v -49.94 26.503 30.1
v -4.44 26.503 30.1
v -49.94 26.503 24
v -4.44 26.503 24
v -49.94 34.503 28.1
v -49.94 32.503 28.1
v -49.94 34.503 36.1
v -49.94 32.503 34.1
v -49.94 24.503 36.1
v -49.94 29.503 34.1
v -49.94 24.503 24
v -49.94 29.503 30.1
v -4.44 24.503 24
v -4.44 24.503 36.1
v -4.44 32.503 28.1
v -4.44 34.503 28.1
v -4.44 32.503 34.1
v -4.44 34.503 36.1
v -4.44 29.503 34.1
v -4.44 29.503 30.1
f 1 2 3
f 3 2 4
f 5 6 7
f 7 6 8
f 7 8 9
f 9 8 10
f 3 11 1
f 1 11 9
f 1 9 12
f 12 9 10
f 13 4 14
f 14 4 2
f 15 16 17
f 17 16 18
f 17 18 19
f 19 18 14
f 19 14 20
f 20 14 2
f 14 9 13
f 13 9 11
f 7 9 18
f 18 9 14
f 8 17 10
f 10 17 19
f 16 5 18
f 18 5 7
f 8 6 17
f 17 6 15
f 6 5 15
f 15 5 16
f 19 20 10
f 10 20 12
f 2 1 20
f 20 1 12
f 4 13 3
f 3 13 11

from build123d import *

# Parameters (mm, degrees)
SALIENTE_EXTRUIR1_DEPTH = 2
SALIENTE_EXTRUIR2_DEPTH = 24
CROQUIS4_W              = 26.838471133
CROQUIS4_H              = 17.040828642
CORTAR_EXTRUIR1_DEPTH   = 70.1
SALIENTE_EXTRUIR3_DEPTH = 2
SALIENTE_EXTRUIR4_DEPTH = 2
CROQUIS7_W              = 45.5
CROQUIS7_H              = 2
SALIENTE_EXTRUIR5_DEPTH = 8
SALIENTE_EXTRUIR6_DEPTH = 6
CROQUIS9_W              = 76.962380363
CROQUIS9_H              = 58.957858246
CORTAR_EXTRUIR2_DEPTH   = 39


with BuildPart() as part:
    # Croquis1 → Saliente-Extruir1 (new body)
    with BuildSketch(Plane.XY):
        Polygon((-48.939551095, 26.503456625), (-8.439551095, 26.503456625), (-4.439551095, 26.503456625), (-4.439551095, 1.503456625), (-8.439551095, 1.503456625), (-49.939551095, 1.503456625), (-49.939551095, 5.503456625), (-49.939551095, 26.503456625), align=None)
    extrude(amount=SALIENTE_EXTRUIR1_DEPTH)

    # Croquis3 → Saliente-Extruir2 (add)
    with BuildSketch(Plane.XY):
        Polygon((-48.939551095, 26.503456625), (-8.439551095, 26.503456625), (-4.439551095, 26.503456625), (-4.439551095, 1.503456625), (-49.939551095, 1.503456625), (-49.939551095, 26.503456625), align=None)
        Polygon((-10.439551095, 3.503456625), (-47.939551095, 3.503456625), (-47.939551095, 5.503456625), (-47.939551095, 24.503456625), (-10.439551095, 24.503456625), (-6.439551095, 24.503456625), (-6.439551095, 3.503456625), align=None, mode=Mode.SUBTRACT)
    extrude(amount=SALIENTE_EXTRUIR2_DEPTH)

    # Croquis4 → Cortar-Extruir1 (cut)
    with BuildSketch(Plane(origin=(0, 0, 0), x_dir=(0, 0, -1), z_dir=(1, 0, 0))):
        with Locations((-15.419235567, 13.92807924)):
            Rectangle(CROQUIS4_W, CROQUIS4_H)
    extrude(amount=-CORTAR_EXTRUIR1_DEPTH, mode=Mode.SUBTRACT)

    # Croquis5 → Saliente-Extruir3 (add)
    with BuildSketch(Plane(origin=(0, 26.503456625, 0), x_dir=(1, 0, 0), z_dir=(0, 1, 0))):
        Polygon((-49.939551095, -20.607192887), (-4.439551095, -20.607192887), (-4.439551095, -36.1), (-8.439551095, -36.1), (-48.939551095, -36.1), (-49.939551095, -36.1), align=None)
    extrude(amount=-SALIENTE_EXTRUIR3_DEPTH)

    # Croquis6 → Saliente-Extruir4 (add)
    with BuildSketch(Plane.XY.offset(36.1)):
        Polygon((-4.439551095, 24.503456625), (-49.939551095, 24.503456625), (-49.939551095, 33.503456625), (-49.939551095, 34.503456625), (-4.439551095, 34.503456625), (-4.439551095, 33.503456625), align=None)
    extrude(amount=-SALIENTE_EXTRUIR4_DEPTH)

    # Croquis7 → Saliente-Extruir5 (add)
    with BuildSketch(Plane.XY.offset(36.1)):
        with Locations((-27.189551095, 33.503456625)):
            Rectangle(CROQUIS7_W, CROQUIS7_H)
    extrude(amount=-SALIENTE_EXTRUIR5_DEPTH)

    # Croquis8 → Saliente-Extruir6 (add)
    with BuildSketch(Plane.XY.offset(36.1)):
        Polygon((-49.939551095, 29.503456625), (-49.939551095, 26.503456625), (-49.715027183, 26.503456625), (-8.439551095, 26.503456625), (-4.439551095, 26.503456625), (-4.439551095, 29.503456625), (-8.439551095, 29.503456625), (-49.715027183, 29.503456625), align=None)
    extrude(amount=-SALIENTE_EXTRUIR6_DEPTH)

    # Croquis9 → Cortar-Extruir2 (cut)
    with BuildSketch(Plane.XY.offset(24)):
        with Locations((-25.38769132, 23.863692023)):
            Rectangle(CROQUIS9_W, CROQUIS9_H)
    extrude(amount=-CORTAR_EXTRUIR2_DEPTH, mode=Mode.SUBTRACT)


solid = part.part
